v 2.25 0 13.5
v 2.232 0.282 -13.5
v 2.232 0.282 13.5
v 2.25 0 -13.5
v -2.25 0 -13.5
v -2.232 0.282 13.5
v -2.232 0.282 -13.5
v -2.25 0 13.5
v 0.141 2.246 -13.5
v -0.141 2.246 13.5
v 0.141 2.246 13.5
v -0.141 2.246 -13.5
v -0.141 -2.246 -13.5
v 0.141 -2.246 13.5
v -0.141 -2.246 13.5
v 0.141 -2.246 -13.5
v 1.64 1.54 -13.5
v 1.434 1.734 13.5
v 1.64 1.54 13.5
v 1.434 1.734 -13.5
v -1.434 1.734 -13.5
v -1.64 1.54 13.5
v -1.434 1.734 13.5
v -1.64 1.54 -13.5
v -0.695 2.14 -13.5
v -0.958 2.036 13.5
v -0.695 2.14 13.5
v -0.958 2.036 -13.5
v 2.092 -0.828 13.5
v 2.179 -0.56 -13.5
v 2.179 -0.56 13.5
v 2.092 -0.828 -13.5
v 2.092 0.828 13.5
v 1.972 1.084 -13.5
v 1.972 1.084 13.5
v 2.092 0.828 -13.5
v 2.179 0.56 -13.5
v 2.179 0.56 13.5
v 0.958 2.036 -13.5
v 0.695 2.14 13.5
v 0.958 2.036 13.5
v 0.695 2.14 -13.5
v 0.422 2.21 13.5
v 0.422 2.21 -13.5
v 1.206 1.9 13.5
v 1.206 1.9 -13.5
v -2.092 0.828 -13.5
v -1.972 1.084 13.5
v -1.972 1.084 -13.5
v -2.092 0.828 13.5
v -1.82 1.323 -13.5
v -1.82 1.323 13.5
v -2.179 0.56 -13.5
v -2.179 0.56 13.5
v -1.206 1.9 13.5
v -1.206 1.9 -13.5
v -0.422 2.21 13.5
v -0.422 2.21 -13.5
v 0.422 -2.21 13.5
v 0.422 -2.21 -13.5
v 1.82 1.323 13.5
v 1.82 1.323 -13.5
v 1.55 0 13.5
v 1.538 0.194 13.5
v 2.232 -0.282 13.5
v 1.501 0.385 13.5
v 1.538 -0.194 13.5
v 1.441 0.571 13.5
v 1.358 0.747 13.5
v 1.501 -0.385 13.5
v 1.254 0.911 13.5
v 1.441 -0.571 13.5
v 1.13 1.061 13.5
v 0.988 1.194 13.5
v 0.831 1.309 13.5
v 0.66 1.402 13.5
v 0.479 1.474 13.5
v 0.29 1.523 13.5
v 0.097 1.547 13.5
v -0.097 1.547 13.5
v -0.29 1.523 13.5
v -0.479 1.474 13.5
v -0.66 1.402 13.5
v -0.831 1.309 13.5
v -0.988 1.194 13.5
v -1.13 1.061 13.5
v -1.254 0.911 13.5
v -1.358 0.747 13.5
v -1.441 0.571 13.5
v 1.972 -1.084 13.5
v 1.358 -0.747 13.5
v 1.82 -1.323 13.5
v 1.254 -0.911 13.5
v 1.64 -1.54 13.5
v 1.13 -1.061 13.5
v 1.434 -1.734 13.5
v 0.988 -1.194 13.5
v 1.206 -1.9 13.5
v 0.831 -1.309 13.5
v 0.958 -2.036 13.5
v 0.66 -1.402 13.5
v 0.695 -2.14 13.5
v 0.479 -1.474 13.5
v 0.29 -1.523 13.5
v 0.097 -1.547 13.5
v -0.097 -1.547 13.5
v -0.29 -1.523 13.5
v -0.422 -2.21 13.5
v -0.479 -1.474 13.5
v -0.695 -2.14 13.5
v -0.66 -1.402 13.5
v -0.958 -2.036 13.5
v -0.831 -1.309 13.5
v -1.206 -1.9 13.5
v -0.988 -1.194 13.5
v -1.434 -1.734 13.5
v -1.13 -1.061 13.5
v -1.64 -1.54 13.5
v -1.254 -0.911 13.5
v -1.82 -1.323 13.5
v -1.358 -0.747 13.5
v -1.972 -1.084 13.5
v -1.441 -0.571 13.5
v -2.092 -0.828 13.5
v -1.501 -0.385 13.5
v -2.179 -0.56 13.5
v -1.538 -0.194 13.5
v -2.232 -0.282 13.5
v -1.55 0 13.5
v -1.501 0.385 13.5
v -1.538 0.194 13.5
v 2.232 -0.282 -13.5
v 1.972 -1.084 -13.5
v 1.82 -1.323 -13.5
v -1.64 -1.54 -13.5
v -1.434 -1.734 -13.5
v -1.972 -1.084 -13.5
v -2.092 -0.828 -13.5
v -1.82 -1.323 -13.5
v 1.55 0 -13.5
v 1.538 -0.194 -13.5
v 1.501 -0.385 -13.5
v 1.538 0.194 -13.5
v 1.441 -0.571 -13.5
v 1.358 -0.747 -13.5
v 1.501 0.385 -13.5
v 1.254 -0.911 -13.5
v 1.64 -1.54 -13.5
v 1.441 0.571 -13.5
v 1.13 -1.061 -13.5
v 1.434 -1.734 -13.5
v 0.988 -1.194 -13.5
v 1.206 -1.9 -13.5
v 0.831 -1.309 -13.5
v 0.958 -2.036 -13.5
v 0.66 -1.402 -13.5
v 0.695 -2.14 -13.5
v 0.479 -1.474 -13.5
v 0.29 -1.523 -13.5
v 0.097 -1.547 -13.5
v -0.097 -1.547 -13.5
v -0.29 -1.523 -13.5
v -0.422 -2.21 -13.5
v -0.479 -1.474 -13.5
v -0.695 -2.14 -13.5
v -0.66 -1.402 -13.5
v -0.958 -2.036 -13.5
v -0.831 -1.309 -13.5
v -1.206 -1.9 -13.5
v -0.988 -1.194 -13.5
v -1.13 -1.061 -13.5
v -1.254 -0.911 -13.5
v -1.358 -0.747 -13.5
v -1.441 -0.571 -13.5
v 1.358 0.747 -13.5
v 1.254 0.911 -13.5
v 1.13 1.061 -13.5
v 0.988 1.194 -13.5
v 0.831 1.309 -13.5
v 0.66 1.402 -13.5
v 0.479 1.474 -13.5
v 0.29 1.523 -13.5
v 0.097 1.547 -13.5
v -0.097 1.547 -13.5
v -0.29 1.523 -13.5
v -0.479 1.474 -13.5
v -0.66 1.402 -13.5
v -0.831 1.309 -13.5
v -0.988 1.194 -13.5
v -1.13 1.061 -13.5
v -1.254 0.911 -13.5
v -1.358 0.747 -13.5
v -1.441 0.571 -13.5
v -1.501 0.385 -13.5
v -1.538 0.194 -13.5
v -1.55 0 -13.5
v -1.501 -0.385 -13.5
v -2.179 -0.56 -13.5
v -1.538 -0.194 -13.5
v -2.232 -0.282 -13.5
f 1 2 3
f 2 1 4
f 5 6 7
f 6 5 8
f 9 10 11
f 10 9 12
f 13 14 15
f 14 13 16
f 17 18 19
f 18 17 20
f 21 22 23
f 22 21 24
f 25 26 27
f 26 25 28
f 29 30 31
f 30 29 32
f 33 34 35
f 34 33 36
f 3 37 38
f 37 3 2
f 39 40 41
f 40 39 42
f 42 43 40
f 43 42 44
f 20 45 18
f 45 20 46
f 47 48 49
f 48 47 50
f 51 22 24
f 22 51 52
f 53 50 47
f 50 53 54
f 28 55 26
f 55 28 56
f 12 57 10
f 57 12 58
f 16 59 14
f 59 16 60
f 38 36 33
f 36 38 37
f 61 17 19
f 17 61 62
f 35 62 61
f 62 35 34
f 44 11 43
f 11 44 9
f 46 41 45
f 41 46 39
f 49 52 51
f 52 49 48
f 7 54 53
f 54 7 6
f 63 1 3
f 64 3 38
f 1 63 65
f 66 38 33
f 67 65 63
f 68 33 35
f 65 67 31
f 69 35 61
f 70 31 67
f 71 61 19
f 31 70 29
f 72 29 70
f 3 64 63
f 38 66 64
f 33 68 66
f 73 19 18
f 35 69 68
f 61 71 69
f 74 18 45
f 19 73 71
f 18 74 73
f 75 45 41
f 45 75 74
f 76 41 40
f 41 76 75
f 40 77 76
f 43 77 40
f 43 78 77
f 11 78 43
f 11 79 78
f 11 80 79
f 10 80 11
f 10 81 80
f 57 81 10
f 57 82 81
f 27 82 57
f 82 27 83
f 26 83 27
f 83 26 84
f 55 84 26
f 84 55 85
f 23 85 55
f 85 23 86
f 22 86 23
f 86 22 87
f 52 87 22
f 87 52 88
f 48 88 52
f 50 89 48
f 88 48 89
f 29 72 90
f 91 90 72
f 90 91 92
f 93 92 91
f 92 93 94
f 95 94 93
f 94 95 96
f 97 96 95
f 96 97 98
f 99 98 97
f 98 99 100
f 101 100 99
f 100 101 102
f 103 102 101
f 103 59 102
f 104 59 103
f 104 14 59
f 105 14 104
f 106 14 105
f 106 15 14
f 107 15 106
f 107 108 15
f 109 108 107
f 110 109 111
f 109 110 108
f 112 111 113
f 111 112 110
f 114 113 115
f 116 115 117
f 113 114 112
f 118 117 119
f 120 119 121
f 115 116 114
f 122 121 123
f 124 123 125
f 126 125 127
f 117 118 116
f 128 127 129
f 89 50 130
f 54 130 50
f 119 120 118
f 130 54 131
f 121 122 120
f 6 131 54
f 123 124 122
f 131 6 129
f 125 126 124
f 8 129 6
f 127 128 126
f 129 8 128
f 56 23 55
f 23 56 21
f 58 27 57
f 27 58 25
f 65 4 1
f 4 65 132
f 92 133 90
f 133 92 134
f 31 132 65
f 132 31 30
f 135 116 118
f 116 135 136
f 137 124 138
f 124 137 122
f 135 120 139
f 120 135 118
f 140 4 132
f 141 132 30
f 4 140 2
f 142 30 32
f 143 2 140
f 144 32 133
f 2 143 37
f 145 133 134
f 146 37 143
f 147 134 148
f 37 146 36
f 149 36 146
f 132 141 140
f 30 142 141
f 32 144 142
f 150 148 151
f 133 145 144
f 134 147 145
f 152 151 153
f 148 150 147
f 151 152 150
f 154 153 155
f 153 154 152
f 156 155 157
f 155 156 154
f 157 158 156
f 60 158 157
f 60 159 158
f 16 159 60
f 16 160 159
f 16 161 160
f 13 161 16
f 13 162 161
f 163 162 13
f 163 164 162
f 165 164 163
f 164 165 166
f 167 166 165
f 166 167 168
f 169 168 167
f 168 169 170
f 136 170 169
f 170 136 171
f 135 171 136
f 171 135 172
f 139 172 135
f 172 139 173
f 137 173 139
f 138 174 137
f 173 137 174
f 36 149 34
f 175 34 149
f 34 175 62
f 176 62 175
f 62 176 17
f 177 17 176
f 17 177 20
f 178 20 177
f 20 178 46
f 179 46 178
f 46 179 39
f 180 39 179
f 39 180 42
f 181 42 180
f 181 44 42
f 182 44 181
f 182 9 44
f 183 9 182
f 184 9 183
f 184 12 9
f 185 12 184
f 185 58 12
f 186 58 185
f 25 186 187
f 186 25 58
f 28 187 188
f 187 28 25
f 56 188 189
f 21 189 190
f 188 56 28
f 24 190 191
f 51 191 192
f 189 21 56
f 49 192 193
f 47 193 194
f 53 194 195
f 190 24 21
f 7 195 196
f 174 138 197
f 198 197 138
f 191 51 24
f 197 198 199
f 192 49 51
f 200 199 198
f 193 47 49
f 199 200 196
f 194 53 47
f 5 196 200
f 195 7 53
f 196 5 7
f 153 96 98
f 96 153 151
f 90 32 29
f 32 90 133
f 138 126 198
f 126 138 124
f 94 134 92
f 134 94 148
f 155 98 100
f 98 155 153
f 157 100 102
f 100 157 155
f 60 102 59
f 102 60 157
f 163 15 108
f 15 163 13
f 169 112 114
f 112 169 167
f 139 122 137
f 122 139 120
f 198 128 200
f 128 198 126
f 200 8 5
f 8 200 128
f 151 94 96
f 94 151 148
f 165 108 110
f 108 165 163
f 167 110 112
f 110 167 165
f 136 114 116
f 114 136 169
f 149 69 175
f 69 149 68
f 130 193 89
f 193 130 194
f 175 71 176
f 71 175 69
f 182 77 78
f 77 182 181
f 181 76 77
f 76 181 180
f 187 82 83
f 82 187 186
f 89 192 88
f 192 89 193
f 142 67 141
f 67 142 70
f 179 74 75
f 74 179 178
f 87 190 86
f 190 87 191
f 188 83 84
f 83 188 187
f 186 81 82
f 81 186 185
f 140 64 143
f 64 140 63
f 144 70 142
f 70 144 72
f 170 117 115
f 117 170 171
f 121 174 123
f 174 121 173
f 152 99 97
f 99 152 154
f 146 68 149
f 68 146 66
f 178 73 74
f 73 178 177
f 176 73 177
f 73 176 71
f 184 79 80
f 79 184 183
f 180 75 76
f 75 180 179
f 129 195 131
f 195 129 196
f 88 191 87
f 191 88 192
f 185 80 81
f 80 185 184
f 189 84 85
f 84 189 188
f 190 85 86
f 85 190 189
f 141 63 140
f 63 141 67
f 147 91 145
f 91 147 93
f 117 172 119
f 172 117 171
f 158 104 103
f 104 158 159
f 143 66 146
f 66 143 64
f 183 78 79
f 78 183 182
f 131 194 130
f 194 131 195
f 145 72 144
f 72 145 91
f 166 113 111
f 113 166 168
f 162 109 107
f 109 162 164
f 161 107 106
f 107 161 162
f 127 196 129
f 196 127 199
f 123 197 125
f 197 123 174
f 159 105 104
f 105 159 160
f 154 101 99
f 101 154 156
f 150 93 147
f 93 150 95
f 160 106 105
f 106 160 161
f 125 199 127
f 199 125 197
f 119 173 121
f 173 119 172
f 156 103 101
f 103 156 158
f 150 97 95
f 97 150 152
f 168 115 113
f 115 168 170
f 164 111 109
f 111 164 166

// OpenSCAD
$fn = 50;


difference() {
	union() {
		translate(v = [0, 0, -13.5000000000]) {
			cylinder(h = 27, r = 2.2500000000);
		}
	}
	union() {
		translate(v = [0, 0, -100.0000000000]) {
			cylinder(h = 200, r = 1.5500000000);
		}
	}
}
